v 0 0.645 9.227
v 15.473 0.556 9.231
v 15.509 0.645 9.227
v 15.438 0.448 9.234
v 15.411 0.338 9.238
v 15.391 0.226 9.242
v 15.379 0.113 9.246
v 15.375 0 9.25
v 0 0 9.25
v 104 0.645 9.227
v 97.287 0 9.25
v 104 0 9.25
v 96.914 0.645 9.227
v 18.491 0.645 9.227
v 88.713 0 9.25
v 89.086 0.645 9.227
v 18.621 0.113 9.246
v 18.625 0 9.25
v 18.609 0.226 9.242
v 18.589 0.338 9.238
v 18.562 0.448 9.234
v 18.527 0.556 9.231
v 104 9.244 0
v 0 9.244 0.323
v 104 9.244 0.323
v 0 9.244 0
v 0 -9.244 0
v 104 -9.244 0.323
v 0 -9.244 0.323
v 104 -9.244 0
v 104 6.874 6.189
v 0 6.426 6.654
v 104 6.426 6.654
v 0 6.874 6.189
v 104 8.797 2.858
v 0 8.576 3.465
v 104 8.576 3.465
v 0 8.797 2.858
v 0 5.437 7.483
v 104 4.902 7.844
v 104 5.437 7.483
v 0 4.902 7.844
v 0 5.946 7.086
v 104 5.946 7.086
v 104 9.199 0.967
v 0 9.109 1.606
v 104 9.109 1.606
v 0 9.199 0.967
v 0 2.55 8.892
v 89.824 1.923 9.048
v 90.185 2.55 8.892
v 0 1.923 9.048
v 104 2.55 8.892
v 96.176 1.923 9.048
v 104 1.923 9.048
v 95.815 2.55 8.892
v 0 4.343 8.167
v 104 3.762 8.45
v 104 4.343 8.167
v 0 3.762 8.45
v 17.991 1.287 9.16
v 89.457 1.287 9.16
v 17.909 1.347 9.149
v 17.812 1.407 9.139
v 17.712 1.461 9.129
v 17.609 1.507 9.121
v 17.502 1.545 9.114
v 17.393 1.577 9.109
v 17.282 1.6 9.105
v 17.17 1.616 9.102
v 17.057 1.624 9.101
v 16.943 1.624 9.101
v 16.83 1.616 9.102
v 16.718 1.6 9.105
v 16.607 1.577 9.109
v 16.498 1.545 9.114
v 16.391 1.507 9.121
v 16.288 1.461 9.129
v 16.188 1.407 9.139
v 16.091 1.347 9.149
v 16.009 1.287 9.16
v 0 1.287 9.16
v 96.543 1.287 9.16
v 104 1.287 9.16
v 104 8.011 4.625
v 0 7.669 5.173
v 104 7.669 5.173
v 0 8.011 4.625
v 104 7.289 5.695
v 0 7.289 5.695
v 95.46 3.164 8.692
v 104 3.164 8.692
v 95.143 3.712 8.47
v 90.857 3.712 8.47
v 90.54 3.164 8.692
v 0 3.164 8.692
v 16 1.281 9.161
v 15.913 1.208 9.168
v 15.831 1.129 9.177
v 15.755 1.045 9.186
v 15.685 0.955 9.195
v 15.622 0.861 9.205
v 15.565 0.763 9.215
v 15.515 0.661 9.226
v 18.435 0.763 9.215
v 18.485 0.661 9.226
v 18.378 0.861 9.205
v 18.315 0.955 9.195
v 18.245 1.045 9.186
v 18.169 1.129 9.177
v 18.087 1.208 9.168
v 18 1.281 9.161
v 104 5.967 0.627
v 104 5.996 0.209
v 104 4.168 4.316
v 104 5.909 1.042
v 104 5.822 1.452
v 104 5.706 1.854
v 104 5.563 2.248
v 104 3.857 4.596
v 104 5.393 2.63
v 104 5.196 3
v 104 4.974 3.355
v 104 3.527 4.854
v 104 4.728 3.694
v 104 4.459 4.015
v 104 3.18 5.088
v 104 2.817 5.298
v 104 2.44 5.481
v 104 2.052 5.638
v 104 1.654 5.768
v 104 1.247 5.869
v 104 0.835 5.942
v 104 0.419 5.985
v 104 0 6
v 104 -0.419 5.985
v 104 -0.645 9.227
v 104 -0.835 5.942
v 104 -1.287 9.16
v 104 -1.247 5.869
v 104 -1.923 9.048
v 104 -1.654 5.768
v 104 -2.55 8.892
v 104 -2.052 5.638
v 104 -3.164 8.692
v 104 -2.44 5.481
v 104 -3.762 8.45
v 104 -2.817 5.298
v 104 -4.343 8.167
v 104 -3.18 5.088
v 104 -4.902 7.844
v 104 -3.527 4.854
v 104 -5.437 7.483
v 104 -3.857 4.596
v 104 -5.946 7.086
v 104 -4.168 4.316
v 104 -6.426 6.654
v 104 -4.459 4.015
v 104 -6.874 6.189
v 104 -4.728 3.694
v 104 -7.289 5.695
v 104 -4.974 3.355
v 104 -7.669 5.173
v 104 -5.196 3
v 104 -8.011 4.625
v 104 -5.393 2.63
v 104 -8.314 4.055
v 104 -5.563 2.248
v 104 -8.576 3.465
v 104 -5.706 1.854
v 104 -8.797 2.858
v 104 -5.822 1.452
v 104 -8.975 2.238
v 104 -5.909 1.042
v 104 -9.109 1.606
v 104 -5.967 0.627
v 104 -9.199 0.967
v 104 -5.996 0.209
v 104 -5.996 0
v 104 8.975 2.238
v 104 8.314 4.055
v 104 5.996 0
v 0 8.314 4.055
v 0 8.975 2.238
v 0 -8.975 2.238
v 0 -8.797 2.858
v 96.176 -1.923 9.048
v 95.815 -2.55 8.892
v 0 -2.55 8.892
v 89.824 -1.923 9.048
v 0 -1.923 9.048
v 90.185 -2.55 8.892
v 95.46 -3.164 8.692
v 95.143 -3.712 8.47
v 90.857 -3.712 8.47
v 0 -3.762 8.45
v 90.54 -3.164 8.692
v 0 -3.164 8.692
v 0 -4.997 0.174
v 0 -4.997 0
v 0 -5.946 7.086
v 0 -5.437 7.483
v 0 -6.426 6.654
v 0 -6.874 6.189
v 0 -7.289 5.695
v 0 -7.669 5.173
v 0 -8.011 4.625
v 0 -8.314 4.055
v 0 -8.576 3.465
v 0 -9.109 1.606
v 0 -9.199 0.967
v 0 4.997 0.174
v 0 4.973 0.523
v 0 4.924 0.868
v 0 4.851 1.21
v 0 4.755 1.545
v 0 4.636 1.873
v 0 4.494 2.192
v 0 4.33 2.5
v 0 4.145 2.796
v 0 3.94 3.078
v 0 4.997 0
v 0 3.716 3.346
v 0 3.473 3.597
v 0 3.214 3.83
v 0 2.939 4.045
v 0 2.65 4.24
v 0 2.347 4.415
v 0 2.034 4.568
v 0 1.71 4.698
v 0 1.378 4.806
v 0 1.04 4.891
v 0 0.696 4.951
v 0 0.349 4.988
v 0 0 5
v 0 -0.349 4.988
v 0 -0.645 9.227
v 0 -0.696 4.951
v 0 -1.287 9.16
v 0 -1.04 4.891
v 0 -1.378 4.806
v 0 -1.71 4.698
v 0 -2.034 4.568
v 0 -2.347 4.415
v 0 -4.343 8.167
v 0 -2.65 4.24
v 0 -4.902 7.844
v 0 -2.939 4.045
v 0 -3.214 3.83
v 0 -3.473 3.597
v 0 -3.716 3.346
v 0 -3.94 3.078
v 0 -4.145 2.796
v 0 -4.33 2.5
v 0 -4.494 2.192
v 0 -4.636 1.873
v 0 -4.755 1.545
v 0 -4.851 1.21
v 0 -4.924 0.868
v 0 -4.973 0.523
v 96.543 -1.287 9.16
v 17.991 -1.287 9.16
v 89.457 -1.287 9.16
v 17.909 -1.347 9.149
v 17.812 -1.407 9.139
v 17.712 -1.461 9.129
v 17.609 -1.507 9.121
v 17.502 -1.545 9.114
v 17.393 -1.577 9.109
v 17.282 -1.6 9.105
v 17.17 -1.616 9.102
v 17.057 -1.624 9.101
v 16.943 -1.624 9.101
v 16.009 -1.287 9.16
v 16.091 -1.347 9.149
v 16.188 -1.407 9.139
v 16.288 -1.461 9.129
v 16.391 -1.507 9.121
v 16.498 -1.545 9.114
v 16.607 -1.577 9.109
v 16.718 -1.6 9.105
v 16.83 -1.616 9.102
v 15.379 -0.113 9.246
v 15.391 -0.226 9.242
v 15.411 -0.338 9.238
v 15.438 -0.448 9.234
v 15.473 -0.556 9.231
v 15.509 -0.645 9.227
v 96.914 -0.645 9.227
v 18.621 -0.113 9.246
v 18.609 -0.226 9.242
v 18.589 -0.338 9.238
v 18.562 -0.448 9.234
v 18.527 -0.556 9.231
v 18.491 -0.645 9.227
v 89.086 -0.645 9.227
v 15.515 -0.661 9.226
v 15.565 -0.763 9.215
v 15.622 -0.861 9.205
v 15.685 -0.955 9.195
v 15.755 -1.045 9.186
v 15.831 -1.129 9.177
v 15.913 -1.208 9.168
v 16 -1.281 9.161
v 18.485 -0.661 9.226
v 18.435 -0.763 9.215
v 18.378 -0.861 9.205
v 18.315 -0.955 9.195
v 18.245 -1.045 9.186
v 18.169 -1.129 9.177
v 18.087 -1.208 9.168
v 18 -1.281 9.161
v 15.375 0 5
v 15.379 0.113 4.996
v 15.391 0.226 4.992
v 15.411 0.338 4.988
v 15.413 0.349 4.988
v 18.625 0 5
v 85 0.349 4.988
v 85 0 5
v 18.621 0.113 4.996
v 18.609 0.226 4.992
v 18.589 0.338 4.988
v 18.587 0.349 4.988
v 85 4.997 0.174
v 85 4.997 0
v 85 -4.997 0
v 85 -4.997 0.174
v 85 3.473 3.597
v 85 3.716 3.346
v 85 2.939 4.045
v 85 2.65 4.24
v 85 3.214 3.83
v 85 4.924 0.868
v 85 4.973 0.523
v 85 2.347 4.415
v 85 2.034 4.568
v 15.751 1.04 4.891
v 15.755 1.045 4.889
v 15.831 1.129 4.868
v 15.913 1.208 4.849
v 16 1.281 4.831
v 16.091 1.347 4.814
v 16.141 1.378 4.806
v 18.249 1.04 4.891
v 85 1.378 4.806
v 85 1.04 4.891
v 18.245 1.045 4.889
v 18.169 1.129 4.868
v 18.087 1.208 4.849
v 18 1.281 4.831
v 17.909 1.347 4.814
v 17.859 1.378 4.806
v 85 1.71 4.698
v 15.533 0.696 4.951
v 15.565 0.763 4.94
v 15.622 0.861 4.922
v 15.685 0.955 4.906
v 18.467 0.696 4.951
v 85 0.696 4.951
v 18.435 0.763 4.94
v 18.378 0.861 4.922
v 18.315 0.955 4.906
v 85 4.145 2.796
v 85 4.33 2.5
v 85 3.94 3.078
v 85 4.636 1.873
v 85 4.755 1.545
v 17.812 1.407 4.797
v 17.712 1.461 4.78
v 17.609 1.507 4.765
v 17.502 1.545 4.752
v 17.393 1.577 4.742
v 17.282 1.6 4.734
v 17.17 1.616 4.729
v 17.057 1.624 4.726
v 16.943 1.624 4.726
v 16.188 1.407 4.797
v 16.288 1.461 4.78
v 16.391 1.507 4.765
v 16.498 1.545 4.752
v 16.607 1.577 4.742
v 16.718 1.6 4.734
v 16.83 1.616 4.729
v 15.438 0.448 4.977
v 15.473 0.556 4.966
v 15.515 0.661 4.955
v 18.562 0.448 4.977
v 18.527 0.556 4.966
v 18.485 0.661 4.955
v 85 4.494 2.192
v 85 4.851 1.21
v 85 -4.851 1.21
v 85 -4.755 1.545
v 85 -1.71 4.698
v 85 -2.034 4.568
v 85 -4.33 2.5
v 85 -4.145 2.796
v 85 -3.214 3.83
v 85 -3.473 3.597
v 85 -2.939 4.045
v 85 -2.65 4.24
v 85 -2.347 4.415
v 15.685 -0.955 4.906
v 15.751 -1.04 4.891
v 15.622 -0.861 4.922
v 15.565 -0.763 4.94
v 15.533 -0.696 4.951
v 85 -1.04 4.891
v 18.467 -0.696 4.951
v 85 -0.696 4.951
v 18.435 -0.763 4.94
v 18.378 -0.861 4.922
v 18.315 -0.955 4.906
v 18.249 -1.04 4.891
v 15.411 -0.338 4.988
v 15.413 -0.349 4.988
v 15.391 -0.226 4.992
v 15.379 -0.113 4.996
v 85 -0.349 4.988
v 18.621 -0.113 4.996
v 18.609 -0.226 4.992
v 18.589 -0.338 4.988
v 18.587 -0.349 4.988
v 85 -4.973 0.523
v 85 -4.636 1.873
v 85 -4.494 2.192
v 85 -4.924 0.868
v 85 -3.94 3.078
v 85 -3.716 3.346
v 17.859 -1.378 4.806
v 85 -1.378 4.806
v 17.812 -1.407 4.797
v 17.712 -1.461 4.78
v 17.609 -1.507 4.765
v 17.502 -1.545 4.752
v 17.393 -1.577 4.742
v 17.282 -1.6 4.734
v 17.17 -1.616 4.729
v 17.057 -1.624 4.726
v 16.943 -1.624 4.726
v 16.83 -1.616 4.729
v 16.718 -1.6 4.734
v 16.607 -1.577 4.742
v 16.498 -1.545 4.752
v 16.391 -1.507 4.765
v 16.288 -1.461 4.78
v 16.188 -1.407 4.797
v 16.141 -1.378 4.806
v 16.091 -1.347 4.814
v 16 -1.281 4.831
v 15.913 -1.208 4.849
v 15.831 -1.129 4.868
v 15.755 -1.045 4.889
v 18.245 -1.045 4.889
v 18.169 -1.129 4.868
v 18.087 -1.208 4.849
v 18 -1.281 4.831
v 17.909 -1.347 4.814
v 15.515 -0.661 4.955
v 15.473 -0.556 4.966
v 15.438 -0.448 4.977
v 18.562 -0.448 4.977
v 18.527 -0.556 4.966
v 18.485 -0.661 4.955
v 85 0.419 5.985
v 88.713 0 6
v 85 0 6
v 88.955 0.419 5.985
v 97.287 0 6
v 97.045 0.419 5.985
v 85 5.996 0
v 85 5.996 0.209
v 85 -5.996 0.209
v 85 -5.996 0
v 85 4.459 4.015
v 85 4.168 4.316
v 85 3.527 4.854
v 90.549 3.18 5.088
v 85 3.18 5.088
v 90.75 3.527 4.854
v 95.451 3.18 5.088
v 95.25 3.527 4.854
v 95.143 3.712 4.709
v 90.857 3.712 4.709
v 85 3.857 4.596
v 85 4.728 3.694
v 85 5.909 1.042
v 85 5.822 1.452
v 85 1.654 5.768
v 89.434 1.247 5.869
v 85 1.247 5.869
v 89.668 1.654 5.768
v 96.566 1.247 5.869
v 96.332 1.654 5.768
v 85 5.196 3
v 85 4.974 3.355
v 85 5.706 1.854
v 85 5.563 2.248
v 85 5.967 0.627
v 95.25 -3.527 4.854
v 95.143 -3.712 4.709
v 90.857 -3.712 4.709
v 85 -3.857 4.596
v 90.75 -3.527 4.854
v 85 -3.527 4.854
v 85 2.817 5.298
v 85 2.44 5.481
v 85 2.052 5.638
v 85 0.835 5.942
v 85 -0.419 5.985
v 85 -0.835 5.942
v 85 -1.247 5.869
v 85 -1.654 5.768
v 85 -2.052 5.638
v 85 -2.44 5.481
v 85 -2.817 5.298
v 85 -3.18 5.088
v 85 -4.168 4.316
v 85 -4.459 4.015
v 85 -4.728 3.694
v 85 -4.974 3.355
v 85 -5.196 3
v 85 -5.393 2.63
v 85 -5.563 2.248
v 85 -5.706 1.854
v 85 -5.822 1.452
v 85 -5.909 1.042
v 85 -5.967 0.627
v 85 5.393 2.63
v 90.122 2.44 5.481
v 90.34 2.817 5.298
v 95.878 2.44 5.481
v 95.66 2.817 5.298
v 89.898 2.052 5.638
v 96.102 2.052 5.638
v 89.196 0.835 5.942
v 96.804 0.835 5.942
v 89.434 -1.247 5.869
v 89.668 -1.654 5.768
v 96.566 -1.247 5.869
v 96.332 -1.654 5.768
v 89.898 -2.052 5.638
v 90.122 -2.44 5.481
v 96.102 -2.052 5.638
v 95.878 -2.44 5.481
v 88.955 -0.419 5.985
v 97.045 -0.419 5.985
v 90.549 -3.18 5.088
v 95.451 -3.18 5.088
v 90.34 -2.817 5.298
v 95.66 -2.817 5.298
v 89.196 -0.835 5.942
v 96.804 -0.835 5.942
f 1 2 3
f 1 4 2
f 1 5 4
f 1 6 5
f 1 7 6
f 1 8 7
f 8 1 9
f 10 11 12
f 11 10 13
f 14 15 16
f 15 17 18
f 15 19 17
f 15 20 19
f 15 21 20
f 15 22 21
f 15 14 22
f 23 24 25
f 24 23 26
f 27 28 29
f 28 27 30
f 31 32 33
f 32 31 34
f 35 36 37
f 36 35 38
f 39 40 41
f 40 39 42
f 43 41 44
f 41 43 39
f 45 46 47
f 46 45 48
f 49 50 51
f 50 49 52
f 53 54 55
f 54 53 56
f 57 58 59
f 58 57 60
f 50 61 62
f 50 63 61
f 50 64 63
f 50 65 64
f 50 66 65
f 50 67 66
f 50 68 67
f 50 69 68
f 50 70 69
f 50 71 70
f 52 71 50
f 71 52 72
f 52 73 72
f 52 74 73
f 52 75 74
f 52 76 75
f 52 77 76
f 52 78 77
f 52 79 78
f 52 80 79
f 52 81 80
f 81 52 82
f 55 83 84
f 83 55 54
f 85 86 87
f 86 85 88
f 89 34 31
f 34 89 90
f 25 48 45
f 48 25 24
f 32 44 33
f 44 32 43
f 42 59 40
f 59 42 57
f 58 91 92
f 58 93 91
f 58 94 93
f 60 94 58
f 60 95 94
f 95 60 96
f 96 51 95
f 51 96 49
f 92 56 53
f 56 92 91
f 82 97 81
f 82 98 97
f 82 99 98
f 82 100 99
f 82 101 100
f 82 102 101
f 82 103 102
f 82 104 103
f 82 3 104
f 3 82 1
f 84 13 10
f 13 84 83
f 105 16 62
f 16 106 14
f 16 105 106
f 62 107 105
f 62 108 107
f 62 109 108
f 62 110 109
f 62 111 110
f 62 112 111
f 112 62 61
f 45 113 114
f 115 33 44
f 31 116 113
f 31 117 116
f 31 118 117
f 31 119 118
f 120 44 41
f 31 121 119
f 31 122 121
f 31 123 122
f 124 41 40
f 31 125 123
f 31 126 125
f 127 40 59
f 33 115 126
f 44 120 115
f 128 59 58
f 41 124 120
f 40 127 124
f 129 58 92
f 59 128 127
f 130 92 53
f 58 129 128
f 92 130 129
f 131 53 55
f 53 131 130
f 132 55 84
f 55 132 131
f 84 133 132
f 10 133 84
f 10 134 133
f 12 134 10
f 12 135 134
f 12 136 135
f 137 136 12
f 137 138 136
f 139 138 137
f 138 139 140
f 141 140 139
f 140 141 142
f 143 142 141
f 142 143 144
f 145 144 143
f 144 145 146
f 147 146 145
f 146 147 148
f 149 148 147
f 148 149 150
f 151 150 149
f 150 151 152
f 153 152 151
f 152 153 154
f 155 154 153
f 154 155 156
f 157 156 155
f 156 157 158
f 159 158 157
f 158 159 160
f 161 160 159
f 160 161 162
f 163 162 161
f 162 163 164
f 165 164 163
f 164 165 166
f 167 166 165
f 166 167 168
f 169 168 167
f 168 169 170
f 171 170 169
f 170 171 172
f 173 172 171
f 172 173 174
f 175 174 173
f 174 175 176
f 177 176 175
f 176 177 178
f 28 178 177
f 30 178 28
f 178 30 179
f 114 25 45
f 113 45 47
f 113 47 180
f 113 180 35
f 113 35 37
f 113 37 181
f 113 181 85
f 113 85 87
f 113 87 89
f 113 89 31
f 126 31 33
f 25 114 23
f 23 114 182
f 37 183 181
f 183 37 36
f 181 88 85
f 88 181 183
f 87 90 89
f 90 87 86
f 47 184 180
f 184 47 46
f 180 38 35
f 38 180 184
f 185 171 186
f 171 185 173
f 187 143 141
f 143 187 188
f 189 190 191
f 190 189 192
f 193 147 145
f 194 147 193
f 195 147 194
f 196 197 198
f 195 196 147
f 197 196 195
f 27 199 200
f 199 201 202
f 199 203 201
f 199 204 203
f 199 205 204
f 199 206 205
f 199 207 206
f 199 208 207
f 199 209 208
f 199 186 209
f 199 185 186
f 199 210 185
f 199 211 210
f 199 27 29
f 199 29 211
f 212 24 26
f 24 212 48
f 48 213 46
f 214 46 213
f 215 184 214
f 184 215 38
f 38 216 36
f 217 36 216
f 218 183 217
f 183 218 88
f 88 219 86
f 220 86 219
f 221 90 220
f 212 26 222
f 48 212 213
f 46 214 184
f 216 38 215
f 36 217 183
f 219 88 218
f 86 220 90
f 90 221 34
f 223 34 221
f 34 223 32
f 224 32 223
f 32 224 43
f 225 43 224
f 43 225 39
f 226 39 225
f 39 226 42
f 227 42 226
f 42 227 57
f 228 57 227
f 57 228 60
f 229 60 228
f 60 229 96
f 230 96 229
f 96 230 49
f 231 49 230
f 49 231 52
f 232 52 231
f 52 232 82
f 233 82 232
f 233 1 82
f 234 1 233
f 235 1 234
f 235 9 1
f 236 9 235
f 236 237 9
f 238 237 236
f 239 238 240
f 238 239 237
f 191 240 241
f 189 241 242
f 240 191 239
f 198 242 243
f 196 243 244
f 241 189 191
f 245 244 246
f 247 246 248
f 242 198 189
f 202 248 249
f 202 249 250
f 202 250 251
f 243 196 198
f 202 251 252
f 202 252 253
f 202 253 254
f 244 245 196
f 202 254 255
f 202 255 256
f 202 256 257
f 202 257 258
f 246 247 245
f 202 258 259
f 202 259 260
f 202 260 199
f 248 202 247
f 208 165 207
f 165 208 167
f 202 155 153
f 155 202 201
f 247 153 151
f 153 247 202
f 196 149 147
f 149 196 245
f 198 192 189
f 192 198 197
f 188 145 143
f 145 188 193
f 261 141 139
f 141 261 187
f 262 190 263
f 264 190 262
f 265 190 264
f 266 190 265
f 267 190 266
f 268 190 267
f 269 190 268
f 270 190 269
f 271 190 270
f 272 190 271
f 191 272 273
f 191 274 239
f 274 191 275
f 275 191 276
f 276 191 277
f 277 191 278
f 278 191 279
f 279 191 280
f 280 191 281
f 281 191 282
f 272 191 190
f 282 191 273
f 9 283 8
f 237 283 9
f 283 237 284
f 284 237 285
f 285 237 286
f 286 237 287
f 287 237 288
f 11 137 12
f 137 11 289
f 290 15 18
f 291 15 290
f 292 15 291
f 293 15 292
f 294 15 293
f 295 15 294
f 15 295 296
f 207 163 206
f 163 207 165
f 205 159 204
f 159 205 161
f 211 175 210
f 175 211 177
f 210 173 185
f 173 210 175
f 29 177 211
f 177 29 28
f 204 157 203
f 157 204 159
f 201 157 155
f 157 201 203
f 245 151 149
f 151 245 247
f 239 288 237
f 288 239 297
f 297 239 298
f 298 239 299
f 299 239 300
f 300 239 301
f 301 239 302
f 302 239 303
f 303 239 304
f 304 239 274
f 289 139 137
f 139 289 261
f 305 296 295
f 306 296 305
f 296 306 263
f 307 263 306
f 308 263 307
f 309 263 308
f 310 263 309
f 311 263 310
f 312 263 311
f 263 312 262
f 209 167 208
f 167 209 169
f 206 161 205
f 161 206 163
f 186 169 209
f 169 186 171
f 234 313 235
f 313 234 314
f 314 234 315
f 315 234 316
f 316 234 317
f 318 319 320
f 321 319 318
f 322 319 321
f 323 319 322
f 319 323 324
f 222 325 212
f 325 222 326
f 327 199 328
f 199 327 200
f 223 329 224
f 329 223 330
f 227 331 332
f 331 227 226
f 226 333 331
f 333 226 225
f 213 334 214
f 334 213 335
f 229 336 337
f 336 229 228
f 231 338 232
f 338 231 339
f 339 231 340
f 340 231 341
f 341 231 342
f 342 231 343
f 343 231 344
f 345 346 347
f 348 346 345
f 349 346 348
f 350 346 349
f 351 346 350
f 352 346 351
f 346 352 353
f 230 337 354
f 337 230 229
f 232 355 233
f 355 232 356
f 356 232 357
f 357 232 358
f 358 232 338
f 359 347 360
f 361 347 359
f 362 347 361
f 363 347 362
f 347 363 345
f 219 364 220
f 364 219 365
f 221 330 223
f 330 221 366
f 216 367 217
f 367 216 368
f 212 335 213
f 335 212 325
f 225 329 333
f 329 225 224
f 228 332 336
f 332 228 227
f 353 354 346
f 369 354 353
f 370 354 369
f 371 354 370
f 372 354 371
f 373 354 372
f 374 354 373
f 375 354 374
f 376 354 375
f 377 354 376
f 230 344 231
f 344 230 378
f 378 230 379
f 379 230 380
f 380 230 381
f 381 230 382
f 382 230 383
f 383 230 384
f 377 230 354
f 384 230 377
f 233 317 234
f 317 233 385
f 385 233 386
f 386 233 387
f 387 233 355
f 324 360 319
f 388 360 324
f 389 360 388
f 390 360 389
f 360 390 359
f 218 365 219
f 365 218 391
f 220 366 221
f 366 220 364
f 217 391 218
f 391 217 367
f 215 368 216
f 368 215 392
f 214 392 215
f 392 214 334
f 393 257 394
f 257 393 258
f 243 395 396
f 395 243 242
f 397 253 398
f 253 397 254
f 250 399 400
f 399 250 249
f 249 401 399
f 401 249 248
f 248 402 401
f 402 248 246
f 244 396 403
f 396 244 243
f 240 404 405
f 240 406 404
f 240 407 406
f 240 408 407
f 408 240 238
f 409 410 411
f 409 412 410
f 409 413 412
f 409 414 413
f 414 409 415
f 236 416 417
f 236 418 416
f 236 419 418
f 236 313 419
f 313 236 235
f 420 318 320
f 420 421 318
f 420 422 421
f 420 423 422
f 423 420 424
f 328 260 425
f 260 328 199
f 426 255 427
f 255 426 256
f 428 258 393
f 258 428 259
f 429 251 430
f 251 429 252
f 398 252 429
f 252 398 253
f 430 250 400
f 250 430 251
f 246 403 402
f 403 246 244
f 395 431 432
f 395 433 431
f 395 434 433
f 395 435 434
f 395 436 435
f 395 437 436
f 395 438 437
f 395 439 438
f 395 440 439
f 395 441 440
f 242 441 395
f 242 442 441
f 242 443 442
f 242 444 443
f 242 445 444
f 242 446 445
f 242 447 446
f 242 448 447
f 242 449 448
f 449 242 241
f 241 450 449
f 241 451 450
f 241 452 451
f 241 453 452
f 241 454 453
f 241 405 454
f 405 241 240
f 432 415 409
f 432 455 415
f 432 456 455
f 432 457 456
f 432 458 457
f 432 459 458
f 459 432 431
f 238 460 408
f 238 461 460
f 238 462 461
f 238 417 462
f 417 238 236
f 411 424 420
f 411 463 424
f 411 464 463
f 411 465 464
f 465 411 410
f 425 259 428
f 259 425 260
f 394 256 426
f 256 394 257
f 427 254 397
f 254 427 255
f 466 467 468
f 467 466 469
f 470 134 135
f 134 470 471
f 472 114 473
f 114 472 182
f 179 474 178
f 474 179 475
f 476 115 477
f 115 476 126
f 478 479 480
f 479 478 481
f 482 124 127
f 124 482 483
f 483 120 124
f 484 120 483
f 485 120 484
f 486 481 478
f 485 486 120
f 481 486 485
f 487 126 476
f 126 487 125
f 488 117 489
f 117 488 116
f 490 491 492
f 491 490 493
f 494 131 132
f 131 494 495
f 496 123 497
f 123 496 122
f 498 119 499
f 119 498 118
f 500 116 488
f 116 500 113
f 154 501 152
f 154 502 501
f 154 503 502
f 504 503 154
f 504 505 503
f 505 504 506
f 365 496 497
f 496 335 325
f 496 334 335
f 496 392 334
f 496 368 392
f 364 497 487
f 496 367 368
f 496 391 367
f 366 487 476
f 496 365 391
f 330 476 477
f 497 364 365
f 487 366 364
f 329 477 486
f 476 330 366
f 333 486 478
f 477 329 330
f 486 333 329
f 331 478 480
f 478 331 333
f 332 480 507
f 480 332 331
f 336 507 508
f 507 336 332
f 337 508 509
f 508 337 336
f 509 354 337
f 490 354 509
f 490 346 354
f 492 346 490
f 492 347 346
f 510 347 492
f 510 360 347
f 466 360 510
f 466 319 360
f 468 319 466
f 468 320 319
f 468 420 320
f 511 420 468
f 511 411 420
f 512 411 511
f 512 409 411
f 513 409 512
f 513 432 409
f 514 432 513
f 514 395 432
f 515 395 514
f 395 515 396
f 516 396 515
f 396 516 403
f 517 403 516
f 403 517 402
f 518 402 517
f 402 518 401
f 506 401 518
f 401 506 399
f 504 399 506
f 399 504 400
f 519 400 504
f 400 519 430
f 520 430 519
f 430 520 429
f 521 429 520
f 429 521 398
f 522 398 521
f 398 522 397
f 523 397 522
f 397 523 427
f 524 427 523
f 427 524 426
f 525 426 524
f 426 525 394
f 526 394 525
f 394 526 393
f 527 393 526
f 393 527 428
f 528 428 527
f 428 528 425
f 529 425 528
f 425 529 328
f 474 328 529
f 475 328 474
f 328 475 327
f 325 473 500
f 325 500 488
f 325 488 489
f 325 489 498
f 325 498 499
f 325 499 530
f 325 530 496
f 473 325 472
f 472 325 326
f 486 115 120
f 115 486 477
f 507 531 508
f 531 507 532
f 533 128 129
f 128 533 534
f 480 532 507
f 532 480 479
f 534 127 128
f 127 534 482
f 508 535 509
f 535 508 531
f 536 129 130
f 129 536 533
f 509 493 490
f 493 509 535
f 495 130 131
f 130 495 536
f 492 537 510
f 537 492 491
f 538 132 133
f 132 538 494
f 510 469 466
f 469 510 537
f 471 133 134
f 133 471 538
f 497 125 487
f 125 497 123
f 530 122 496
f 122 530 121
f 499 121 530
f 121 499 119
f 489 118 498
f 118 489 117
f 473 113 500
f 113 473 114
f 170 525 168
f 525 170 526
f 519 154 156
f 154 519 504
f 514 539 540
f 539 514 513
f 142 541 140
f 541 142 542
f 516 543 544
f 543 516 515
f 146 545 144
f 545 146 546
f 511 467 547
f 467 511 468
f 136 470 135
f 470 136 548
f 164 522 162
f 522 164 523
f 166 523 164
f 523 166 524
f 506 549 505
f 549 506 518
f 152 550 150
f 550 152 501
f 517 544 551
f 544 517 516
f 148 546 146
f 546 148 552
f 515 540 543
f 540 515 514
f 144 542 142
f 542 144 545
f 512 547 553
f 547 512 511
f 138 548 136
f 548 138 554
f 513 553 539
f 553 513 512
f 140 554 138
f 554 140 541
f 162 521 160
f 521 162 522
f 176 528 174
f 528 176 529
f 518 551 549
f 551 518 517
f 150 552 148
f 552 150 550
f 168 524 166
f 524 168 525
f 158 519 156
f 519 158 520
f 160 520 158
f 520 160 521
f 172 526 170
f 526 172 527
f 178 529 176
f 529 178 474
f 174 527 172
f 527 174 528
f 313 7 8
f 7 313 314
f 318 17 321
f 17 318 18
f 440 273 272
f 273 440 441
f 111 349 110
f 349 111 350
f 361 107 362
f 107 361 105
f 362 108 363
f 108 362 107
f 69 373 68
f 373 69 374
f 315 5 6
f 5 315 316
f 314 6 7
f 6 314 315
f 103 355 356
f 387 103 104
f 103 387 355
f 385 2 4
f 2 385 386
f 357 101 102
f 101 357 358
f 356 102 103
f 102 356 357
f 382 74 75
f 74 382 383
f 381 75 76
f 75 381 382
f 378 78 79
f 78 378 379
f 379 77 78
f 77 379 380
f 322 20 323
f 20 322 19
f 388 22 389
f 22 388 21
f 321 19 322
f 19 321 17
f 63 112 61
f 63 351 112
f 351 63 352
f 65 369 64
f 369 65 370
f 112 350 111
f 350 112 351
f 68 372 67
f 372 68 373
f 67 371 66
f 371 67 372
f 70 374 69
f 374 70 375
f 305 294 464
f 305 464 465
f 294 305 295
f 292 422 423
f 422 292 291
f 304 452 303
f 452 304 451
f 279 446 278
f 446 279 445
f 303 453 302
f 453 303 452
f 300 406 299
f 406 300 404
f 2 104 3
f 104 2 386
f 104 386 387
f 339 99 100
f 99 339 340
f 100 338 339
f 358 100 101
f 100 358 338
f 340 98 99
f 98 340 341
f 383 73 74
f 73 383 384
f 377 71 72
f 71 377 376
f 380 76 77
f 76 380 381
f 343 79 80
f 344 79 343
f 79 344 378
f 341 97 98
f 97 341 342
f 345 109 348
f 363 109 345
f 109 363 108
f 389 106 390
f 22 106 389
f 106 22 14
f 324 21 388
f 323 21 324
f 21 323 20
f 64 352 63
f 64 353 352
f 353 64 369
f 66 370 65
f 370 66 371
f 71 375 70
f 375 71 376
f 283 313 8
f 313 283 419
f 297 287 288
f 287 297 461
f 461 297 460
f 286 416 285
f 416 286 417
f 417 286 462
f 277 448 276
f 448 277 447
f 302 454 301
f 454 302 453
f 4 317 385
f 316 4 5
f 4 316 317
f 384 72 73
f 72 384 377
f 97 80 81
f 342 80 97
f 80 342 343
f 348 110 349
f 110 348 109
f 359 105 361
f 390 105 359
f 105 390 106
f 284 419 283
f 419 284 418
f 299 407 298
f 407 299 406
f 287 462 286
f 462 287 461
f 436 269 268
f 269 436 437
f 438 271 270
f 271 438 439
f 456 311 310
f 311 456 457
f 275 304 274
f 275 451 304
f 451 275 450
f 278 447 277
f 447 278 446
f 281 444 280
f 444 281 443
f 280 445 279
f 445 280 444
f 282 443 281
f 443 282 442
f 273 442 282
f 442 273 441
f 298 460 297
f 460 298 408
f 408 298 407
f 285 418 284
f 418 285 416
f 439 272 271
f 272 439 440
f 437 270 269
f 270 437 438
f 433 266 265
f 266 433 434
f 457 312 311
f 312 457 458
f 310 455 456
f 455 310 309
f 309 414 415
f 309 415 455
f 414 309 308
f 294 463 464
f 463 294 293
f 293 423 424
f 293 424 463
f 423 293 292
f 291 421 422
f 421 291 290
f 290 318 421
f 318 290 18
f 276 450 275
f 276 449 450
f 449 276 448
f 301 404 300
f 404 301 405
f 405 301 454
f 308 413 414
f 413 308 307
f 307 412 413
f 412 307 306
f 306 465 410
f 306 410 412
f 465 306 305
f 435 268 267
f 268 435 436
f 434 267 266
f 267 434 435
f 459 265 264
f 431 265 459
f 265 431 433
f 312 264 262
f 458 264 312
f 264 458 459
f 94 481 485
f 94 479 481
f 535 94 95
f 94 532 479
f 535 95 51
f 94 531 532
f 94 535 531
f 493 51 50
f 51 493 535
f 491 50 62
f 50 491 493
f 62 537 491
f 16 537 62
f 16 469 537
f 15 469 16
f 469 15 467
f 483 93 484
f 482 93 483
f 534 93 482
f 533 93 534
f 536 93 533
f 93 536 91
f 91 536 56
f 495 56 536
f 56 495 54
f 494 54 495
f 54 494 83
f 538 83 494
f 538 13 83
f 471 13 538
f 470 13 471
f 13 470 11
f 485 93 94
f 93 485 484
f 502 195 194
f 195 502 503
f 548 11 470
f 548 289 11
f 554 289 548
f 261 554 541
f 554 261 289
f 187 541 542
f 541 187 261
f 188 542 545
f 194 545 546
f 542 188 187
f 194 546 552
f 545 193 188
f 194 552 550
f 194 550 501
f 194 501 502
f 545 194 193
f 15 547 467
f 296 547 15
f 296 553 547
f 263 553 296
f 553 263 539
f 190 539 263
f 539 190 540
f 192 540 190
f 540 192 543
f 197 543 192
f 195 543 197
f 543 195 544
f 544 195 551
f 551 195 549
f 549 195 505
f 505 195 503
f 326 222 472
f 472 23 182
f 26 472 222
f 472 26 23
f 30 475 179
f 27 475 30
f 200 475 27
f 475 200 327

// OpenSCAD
innerDia1 = 10;
innerDia2 = 12;
outerDia = 18.5;
totalLength = 104;
couplerToEndLength = 55.5;
innerDia2Offset = 85;

mountHole1Z = 25.5 - 8.5;
mountHole1Dia = 3.25;
mountHole1Fn = ($preview?30:90);

mountHole2Z = mountHole1Z + 76;
mountHole2FlatSideDia = 7;
mountHole2Fn = 6;

bands = false;
bandWidth = 6;
bandMiddleZ = [33, 94, 109];
bandInset = 1;

innerRad1 = innerDia1/2;
innerRad2 = innerDia2/2;
outerRad = outerDia/2;
mountHole1Rad = mountHole1Dia/2;
mountHole2Rad = mountHole2FlatSideDia/2*sqrt(3/2);

//adapter();
adapter_cut();

module adapter_cut()
{
    rotate([0, 90, 0])
    difference()
    {
        adapter();
        translate([0, -outerDia, -1])
        cube([outerDia, outerDia*2, totalLength+2]);
    }
}

module adapter()
{
    difference()
    {
        cylinder(r=outerRad, h=totalLength, $fn=($preview?30:90));
        translate([0, 0, -1])
        cylinder(r=innerRad1, h=totalLength+2, $fn=($preview?30:90));
        translate([0, 0, innerDia2Offset])
        cylinder(r=innerRad2, h=totalLength+2, $fn=($preview?30:90));
        
        translate([0, 0, mountHole1Z])
        {
            rotate([0, 90, 0])
            cylinder(r=mountHole1Rad, h=outerRad*3, center=true, $fn=mountHole1Fn);
        }
        
        translate([0, 0, mountHole2Z])
        {
            rotate([0, 90, 0])
            cylinder(r=mountHole2Rad, h=outerRad*3, center=true, $fn=mountHole2Fn);
        }
        
        if (bands)
        {
            for(i=[0:len(bandMiddleZ)-1])
            {
                translate([0, 0, bandMiddleZ[i]])
                difference()
                {
                    cylinder(r=outerRad+1, h=bandWidth, center=true, $fn=($preview?30:90));
                    cylinder(r=outerRad-bandInset, h=bandWidth+1, center=true, $fn=($preview?30:90));
                }
            }
        }
    }
}
